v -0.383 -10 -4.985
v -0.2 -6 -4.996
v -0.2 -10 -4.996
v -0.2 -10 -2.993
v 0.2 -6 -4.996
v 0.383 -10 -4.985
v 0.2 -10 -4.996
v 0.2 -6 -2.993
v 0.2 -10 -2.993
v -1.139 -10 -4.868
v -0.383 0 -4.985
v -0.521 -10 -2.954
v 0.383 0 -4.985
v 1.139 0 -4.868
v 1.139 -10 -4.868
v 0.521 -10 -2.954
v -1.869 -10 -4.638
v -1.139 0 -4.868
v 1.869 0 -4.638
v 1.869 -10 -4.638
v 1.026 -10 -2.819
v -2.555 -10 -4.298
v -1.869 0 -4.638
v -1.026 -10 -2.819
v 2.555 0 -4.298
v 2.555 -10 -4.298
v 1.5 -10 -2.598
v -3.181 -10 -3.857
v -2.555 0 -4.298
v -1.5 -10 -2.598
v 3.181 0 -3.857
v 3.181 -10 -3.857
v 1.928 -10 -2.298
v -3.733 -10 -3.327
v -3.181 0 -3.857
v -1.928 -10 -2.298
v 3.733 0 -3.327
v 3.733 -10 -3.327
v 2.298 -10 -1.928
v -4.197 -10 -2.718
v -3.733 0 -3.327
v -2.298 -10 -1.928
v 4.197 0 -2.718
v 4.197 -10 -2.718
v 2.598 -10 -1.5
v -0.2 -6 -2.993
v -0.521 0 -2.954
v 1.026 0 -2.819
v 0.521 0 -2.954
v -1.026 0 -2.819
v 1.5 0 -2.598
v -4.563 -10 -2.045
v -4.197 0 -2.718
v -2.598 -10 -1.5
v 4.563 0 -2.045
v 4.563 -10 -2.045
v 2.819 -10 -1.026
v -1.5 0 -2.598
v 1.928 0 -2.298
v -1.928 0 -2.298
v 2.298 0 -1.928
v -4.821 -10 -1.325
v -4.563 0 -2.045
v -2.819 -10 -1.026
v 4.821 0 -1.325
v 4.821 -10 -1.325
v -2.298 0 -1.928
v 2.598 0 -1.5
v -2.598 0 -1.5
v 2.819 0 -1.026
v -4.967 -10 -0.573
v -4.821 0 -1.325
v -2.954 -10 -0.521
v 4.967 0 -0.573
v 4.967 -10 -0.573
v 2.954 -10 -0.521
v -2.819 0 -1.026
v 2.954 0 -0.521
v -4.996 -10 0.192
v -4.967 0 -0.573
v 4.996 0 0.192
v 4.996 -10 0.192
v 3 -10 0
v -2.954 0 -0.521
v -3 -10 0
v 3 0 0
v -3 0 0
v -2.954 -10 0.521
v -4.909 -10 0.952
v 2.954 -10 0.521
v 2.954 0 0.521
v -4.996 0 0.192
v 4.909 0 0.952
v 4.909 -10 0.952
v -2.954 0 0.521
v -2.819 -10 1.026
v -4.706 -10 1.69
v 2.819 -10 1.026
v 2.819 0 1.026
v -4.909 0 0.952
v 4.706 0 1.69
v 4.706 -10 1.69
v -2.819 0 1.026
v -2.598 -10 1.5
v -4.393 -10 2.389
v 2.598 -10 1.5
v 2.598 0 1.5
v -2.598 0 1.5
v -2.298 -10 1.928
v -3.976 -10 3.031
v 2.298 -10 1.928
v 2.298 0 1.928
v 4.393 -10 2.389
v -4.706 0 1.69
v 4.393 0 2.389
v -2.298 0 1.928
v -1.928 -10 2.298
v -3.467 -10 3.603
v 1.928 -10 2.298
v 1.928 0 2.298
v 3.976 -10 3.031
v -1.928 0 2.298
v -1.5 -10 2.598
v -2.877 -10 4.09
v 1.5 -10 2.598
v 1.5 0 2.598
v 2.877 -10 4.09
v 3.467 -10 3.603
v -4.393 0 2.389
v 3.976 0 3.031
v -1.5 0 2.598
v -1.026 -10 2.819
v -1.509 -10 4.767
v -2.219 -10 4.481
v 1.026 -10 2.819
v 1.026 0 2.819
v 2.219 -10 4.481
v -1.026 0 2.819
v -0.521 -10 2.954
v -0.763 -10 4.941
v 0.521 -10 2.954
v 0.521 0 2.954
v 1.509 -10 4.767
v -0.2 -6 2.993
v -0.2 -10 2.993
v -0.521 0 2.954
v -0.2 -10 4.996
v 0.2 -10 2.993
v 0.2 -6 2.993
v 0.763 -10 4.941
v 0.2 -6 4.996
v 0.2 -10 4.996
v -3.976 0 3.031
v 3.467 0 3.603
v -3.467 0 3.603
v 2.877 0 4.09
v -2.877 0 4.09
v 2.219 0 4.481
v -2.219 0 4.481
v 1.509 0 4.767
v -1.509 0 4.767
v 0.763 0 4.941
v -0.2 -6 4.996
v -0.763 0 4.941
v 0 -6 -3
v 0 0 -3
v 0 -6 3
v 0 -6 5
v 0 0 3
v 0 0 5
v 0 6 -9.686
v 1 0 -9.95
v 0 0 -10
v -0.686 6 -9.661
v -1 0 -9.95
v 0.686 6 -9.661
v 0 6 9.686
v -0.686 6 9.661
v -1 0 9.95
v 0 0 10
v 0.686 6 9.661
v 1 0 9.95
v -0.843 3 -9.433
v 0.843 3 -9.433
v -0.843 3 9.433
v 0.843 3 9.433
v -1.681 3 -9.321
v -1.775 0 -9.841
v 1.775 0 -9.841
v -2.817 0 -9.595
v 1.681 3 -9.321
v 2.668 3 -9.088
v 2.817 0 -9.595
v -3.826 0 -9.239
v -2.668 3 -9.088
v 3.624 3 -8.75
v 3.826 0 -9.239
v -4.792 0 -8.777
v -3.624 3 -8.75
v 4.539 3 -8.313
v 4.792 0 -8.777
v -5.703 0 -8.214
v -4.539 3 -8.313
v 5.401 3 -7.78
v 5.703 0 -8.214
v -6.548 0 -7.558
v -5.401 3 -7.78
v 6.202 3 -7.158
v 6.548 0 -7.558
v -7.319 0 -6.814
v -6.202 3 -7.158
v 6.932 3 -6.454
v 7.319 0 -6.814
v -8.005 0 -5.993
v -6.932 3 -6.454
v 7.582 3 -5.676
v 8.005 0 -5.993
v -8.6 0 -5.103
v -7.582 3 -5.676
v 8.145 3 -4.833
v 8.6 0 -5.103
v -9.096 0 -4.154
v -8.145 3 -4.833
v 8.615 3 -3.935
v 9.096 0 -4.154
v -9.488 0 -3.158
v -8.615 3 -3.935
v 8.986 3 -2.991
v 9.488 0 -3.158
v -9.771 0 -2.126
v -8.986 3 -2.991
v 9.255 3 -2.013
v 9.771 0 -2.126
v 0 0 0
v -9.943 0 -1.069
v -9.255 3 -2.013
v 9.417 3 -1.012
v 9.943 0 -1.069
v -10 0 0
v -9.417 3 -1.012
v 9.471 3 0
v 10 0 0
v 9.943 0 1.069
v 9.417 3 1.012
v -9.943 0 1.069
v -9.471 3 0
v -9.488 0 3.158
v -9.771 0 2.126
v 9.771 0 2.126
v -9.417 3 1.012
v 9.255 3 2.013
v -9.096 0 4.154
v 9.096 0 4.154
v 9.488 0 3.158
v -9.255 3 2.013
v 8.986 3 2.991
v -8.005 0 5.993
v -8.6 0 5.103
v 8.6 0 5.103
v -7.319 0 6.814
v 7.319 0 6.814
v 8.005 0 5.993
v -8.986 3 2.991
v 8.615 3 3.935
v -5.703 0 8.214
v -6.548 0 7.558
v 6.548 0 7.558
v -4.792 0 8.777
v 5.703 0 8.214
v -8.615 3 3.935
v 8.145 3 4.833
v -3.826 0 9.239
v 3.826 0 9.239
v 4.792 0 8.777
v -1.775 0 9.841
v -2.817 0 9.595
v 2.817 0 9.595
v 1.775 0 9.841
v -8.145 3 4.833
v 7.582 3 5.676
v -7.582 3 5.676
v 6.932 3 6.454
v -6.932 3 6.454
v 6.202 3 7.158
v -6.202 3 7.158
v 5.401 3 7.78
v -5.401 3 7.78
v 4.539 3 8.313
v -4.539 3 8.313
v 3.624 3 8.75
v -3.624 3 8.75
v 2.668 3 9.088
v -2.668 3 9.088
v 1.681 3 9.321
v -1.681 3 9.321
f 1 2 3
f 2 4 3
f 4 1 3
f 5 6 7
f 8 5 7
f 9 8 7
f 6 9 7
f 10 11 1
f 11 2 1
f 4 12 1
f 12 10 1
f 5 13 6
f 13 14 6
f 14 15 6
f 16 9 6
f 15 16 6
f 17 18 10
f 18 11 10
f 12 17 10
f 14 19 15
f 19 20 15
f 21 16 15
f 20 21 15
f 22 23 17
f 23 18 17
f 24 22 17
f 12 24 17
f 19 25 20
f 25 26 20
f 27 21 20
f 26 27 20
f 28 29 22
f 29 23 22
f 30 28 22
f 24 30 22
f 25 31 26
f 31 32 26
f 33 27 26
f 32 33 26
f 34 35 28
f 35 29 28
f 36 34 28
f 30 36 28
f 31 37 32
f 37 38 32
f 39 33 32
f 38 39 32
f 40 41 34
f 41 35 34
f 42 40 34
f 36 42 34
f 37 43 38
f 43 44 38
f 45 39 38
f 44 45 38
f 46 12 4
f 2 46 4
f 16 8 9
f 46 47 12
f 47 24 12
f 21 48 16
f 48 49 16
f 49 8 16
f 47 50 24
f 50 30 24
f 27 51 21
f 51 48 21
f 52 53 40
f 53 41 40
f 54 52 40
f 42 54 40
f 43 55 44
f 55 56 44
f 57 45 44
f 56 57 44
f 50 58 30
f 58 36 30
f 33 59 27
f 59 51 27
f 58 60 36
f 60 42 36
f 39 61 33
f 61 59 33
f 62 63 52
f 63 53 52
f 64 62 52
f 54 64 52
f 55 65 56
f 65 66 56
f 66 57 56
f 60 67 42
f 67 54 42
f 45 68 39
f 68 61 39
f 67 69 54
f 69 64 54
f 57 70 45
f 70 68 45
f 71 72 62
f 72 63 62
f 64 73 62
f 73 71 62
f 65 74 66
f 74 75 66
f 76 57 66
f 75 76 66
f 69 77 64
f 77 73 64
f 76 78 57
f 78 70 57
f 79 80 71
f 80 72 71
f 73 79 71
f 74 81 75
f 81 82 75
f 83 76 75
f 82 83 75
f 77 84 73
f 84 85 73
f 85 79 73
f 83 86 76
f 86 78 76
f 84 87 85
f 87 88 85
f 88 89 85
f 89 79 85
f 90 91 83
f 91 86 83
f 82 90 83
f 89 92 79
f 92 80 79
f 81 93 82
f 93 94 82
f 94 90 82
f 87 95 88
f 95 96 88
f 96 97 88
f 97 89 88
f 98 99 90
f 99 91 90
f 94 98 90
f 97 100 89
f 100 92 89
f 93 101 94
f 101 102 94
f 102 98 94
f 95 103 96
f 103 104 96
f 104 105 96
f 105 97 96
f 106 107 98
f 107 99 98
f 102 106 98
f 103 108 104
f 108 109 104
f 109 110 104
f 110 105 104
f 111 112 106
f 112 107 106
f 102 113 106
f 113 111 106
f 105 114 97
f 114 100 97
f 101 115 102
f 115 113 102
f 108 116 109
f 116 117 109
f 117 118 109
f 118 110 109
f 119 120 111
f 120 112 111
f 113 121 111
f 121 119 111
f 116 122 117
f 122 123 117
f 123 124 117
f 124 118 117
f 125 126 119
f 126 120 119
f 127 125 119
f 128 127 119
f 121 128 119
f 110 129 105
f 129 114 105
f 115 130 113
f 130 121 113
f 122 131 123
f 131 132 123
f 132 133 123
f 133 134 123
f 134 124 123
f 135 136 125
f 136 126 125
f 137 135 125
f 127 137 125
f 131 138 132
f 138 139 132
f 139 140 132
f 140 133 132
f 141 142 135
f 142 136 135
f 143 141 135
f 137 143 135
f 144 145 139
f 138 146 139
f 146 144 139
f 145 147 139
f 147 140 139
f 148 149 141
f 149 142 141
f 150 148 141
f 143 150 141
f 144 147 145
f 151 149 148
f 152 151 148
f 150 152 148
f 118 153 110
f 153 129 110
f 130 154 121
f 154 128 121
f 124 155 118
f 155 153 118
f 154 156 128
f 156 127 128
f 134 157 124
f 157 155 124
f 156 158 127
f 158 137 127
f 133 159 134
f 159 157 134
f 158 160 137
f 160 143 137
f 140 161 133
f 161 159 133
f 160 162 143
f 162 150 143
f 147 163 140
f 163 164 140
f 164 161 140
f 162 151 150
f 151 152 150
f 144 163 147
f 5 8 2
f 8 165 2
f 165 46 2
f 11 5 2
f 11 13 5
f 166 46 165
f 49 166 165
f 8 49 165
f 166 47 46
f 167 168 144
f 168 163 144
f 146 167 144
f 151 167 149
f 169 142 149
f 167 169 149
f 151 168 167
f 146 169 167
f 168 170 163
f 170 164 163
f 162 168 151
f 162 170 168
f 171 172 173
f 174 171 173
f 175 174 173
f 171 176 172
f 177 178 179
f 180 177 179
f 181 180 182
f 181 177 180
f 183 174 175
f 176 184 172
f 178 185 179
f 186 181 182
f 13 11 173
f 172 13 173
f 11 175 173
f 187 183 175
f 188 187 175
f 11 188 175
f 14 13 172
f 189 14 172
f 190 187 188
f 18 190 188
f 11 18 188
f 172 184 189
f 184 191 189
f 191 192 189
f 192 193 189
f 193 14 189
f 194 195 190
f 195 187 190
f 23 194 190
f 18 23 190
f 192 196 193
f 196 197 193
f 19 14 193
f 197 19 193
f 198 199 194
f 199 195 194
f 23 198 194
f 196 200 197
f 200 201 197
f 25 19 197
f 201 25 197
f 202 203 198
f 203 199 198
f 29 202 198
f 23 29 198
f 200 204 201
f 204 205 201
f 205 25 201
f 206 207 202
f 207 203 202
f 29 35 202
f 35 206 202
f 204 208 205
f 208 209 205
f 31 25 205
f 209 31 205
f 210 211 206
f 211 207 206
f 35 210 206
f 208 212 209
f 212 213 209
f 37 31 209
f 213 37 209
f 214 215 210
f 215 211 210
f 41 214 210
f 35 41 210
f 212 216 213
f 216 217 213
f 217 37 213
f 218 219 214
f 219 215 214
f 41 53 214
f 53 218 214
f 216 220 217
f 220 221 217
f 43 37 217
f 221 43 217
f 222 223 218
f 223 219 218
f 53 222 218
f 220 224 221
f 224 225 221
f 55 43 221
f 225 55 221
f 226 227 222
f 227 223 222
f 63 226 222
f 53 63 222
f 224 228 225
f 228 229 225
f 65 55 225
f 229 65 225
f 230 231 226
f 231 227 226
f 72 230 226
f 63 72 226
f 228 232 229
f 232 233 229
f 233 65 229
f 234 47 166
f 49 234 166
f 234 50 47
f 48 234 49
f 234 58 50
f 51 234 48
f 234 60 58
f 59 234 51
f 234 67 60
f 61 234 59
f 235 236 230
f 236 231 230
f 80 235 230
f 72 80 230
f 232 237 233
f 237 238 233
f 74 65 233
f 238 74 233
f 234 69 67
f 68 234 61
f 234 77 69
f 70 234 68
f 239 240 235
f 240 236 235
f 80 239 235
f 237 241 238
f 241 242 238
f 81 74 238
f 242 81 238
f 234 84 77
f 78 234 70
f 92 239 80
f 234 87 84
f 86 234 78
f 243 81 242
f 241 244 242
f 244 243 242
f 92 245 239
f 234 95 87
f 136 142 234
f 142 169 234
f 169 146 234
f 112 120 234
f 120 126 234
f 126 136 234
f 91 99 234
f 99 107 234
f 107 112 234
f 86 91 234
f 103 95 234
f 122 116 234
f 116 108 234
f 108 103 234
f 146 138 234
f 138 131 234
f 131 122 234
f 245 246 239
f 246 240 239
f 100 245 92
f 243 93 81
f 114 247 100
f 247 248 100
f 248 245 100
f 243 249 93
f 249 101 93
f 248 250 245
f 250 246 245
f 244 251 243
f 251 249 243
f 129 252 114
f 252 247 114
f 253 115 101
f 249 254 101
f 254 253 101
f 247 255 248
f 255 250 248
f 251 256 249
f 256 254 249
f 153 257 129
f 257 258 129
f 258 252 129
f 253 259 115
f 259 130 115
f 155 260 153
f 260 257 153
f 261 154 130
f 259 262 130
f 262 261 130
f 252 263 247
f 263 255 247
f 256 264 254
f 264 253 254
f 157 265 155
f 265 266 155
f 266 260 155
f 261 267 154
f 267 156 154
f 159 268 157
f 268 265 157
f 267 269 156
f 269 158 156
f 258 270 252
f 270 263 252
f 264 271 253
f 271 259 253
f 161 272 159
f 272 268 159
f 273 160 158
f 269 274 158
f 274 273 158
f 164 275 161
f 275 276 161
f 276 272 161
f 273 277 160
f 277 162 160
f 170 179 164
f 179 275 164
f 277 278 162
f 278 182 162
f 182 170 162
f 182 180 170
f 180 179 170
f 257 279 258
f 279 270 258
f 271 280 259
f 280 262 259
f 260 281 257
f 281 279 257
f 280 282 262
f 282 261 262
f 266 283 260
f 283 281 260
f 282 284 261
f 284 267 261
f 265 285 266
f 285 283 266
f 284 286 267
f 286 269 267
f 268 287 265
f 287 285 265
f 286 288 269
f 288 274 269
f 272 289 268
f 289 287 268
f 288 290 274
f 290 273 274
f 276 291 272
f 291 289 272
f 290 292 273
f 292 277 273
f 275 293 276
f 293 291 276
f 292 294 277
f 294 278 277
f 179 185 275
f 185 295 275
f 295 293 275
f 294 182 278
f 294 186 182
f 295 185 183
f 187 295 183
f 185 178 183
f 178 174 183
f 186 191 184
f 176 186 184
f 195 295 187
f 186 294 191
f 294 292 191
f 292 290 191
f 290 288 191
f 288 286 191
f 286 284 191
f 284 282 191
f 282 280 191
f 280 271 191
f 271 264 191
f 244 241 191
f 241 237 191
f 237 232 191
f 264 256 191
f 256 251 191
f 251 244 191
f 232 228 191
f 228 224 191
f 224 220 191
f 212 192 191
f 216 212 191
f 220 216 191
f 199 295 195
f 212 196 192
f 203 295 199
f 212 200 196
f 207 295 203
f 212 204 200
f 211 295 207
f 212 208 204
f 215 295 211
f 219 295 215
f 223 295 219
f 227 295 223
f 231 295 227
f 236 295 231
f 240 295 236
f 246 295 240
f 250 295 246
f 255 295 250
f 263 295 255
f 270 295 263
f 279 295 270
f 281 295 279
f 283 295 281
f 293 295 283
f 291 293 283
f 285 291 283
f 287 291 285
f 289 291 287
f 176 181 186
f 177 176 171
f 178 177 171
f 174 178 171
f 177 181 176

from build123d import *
from build123d.topology import SkipClean

# Parameters (mm, degrees)
ESBO_O2_R                = 10
RESSALTO_EXTRUS_O1_DEPTH = 3
RESSALTO_EXTRUS_O1_TAPER = 10
RESSALTO_EXTRUS_O2_DEPTH = 6
RESSALTO_EXTRUS_O2_DRAFT = 3
ESBO_O3_R                = 5
ESBO_O3_R_2              = 3
RESSALTO_EXTRUS_O3_DEPTH = 6
RESSALTO_EXTRUS_O4_DEPTH = 10


with BuildPart() as part:
    # Esboço2 → Ressalto-extrusão1 (new body)
    with BuildSketch(Plane(origin=(0, 0, 0), x_dir=(1, 0, 0), z_dir=(0, 1, 0))):
        Circle(ESBO_O2_R)
    extrude(amount=RESSALTO_EXTRUS_O1_DEPTH, taper=RESSALTO_EXTRUS_O1_TAPER)


with BuildPart() as ressalto_extrus_o2_tool:
    # Esboço2<3> → Ressalto-extrusão2 (with draft: the straight prism first)
    with BuildSketch(Plane(origin=(0, 0, 0), x_dir=(1, 0, 0), z_dir=(0, 1, 0))):
        with BuildLine():
            Line((-1, 9.949874371), (-1, -9.949874371))
            ThreePointArc((-1, -9.949874371), (0, -10), (1, -9.949874371))
            Line((1, -9.949874371), (1, 9.949874371))
            ThreePointArc((1, 9.949874371), (0, 10), (-1, 9.949874371))
        make_face()
    extrude(amount=RESSALTO_EXTRUS_O2_DEPTH)
    # Ressalto-extrusão2: the draft: its side faces are tilted about the plane it starts from
    ressalto_extrus_o2_sides = [ressalto_extrus_o2_tool.faces().sort_by_distance(p)[0] for p in [
        (1, 3, 0),
        (0, 3, -10),
        (-1, 3, 0),
        (0, 3, 10),
    ]]
    draft(ressalto_extrus_o2_sides, Plane(origin=(0, 0, 0), x_dir=(1, 0, 0), z_dir=(0, 1, 0)), RESSALTO_EXTRUS_O2_DRAFT)


with BuildPart() as part_1:
    add(part.part)

    # Ressalto-extrusão2: add ressalto_extrus_o2_tool
    add(ressalto_extrus_o2_tool.part)

    # Esboço3 → Ressalto-extrusão3 (add)
    with BuildSketch(Plane(origin=(0, 0, 0), x_dir=(1, 0, 0), z_dir=(0, 1, 0))):
        Circle(ESBO_O3_R)
        Circle(ESBO_O3_R_2, mode=Mode.SUBTRACT)
    extrude(amount=-RESSALTO_EXTRUS_O3_DEPTH)

    # Esboço3<3> → Ressalto-extrusão4 (add)
    with SkipClean():  # the faces are left unmerged after this step: merging them gives an invalid solid
        with BuildSketch(Plane(origin=(0, 0, 0), x_dir=(1, 0, 0), z_dir=(0, 1, 0))):
            with BuildLine():
                Line((-0.2, 2.993325909), (-0.2, 4.995998399))
                ThreePointArc((-0.2, 4.995998399), (-5, 0), (-0.2, -4.995998399))
                Line((-0.2, -4.995998399), (-0.2, -2.993325909))
                ThreePointArc((-0.2, -2.993325909), (-3, 0), (-0.2, 2.993325909))
            make_face()
            with BuildLine():
                ThreePointArc((0.2, -4.995998399), (5, 0), (0.2, 4.995998399))
                Line((0.2, 4.995998399), (0.2, 2.993325909))
                ThreePointArc((0.2, 2.993325909), (3, 0), (0.2, -2.993325909))
                Line((0.2, -2.993325909), (0.2, -4.995998399))
            make_face()
        extrude(amount=-RESSALTO_EXTRUS_O4_DEPTH)


solid = part_1.part
